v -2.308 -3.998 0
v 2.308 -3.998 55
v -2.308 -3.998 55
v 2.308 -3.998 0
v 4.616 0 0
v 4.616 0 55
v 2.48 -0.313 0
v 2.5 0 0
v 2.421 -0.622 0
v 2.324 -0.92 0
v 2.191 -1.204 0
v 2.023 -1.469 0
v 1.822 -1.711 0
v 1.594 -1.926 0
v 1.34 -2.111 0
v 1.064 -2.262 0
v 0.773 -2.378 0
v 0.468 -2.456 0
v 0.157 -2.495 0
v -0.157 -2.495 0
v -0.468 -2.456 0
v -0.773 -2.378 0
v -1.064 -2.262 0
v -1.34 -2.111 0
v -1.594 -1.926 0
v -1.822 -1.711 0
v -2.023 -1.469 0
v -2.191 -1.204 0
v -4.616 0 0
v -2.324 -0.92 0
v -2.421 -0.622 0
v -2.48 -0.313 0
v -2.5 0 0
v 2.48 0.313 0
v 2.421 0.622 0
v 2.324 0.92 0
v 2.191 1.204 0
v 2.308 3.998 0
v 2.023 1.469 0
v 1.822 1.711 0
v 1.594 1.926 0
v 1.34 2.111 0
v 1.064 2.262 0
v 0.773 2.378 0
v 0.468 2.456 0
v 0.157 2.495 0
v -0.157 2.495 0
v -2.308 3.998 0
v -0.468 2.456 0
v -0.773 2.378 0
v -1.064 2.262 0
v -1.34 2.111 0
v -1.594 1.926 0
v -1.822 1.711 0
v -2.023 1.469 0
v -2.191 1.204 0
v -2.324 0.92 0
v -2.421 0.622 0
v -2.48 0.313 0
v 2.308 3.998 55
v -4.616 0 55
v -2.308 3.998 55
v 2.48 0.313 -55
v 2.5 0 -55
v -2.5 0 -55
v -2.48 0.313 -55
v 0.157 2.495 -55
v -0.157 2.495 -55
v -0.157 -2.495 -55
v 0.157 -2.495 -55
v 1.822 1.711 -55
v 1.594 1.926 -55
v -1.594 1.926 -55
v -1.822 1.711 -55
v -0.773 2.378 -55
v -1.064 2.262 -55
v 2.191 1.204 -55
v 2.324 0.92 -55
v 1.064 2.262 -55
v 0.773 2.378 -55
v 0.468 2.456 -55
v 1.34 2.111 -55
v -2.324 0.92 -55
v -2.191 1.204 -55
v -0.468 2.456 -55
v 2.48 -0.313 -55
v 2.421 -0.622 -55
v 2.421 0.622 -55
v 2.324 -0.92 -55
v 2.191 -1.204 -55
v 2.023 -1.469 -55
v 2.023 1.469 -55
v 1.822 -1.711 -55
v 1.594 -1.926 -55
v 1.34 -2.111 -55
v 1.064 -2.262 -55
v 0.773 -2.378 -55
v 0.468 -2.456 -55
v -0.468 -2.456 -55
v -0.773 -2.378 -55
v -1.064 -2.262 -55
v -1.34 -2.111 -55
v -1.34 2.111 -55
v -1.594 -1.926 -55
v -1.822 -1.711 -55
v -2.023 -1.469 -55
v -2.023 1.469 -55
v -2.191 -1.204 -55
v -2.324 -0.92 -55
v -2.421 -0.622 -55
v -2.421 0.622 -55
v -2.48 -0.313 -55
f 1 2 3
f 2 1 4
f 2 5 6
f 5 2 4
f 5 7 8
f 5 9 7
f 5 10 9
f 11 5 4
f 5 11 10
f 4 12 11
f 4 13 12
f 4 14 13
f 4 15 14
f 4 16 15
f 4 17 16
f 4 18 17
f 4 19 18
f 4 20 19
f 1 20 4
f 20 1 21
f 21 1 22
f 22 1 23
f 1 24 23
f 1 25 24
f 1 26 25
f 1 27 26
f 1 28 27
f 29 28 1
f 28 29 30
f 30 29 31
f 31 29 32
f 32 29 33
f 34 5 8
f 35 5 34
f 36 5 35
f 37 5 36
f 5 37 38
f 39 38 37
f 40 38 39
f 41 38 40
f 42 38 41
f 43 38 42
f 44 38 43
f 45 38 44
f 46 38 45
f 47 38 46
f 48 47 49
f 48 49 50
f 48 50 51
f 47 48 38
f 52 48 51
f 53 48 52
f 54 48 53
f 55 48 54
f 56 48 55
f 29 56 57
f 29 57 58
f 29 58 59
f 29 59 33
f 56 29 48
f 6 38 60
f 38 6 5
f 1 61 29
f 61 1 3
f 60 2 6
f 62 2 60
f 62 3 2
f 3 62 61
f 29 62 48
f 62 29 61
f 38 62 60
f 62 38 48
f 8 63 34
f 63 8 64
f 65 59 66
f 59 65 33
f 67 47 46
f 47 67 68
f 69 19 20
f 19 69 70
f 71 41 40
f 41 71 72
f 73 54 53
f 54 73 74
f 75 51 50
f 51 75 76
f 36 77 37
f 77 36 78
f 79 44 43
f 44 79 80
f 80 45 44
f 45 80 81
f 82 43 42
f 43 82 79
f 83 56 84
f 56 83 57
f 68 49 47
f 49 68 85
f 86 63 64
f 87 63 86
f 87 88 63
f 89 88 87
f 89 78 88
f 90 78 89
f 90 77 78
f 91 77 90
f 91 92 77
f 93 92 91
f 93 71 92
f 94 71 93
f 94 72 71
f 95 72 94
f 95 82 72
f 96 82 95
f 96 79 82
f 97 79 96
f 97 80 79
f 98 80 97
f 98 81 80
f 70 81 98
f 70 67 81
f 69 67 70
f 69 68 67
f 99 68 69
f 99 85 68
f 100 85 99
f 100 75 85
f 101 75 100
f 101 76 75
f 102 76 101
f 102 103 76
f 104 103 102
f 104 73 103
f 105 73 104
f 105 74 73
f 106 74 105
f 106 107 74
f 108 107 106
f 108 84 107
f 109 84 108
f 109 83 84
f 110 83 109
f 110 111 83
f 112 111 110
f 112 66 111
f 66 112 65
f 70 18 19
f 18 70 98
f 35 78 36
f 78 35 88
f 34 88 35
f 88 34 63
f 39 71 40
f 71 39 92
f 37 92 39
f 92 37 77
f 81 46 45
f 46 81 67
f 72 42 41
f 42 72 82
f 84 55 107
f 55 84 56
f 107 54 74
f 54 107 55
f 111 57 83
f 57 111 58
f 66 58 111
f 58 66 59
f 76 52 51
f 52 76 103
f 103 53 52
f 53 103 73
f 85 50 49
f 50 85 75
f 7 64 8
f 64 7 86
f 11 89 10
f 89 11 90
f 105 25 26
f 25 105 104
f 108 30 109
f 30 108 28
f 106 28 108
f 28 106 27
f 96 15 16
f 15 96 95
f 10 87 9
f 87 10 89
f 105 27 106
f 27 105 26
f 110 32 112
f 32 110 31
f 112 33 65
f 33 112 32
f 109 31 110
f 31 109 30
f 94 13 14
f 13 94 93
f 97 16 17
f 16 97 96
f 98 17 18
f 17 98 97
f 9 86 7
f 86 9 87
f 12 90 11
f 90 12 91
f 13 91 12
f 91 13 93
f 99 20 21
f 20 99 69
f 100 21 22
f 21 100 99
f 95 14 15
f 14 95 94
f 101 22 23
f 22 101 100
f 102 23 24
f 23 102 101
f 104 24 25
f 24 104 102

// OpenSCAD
$fn = 50;


difference() {
	union() {
		translate(v = [0, 0, 0]) {
			rotate(a = [0, 0, 0]) {
				translate(v = [0, 0, 0]) {
					rotate(a = [0, 0, 0]) {
						linear_extrude(height = 55) {
							polygon(points = [[4.6160000000, 0.0000000000], [2.3080000000, 3.9975732639], [-2.3080000000, 3.9975732639], [-4.6160000000, 0.0000000000], [-2.3080000000, -3.9975732639], [2.3080000000, -3.9975732639]]);
						}
					}
				}
			}
		}
		translate(v = [0, 0, -55]) {
			rotate(a = [0, 0, 0]) {
				cylinder(h = 55, r = 2.5000000000);
			}
		}
	}
	union();
}
